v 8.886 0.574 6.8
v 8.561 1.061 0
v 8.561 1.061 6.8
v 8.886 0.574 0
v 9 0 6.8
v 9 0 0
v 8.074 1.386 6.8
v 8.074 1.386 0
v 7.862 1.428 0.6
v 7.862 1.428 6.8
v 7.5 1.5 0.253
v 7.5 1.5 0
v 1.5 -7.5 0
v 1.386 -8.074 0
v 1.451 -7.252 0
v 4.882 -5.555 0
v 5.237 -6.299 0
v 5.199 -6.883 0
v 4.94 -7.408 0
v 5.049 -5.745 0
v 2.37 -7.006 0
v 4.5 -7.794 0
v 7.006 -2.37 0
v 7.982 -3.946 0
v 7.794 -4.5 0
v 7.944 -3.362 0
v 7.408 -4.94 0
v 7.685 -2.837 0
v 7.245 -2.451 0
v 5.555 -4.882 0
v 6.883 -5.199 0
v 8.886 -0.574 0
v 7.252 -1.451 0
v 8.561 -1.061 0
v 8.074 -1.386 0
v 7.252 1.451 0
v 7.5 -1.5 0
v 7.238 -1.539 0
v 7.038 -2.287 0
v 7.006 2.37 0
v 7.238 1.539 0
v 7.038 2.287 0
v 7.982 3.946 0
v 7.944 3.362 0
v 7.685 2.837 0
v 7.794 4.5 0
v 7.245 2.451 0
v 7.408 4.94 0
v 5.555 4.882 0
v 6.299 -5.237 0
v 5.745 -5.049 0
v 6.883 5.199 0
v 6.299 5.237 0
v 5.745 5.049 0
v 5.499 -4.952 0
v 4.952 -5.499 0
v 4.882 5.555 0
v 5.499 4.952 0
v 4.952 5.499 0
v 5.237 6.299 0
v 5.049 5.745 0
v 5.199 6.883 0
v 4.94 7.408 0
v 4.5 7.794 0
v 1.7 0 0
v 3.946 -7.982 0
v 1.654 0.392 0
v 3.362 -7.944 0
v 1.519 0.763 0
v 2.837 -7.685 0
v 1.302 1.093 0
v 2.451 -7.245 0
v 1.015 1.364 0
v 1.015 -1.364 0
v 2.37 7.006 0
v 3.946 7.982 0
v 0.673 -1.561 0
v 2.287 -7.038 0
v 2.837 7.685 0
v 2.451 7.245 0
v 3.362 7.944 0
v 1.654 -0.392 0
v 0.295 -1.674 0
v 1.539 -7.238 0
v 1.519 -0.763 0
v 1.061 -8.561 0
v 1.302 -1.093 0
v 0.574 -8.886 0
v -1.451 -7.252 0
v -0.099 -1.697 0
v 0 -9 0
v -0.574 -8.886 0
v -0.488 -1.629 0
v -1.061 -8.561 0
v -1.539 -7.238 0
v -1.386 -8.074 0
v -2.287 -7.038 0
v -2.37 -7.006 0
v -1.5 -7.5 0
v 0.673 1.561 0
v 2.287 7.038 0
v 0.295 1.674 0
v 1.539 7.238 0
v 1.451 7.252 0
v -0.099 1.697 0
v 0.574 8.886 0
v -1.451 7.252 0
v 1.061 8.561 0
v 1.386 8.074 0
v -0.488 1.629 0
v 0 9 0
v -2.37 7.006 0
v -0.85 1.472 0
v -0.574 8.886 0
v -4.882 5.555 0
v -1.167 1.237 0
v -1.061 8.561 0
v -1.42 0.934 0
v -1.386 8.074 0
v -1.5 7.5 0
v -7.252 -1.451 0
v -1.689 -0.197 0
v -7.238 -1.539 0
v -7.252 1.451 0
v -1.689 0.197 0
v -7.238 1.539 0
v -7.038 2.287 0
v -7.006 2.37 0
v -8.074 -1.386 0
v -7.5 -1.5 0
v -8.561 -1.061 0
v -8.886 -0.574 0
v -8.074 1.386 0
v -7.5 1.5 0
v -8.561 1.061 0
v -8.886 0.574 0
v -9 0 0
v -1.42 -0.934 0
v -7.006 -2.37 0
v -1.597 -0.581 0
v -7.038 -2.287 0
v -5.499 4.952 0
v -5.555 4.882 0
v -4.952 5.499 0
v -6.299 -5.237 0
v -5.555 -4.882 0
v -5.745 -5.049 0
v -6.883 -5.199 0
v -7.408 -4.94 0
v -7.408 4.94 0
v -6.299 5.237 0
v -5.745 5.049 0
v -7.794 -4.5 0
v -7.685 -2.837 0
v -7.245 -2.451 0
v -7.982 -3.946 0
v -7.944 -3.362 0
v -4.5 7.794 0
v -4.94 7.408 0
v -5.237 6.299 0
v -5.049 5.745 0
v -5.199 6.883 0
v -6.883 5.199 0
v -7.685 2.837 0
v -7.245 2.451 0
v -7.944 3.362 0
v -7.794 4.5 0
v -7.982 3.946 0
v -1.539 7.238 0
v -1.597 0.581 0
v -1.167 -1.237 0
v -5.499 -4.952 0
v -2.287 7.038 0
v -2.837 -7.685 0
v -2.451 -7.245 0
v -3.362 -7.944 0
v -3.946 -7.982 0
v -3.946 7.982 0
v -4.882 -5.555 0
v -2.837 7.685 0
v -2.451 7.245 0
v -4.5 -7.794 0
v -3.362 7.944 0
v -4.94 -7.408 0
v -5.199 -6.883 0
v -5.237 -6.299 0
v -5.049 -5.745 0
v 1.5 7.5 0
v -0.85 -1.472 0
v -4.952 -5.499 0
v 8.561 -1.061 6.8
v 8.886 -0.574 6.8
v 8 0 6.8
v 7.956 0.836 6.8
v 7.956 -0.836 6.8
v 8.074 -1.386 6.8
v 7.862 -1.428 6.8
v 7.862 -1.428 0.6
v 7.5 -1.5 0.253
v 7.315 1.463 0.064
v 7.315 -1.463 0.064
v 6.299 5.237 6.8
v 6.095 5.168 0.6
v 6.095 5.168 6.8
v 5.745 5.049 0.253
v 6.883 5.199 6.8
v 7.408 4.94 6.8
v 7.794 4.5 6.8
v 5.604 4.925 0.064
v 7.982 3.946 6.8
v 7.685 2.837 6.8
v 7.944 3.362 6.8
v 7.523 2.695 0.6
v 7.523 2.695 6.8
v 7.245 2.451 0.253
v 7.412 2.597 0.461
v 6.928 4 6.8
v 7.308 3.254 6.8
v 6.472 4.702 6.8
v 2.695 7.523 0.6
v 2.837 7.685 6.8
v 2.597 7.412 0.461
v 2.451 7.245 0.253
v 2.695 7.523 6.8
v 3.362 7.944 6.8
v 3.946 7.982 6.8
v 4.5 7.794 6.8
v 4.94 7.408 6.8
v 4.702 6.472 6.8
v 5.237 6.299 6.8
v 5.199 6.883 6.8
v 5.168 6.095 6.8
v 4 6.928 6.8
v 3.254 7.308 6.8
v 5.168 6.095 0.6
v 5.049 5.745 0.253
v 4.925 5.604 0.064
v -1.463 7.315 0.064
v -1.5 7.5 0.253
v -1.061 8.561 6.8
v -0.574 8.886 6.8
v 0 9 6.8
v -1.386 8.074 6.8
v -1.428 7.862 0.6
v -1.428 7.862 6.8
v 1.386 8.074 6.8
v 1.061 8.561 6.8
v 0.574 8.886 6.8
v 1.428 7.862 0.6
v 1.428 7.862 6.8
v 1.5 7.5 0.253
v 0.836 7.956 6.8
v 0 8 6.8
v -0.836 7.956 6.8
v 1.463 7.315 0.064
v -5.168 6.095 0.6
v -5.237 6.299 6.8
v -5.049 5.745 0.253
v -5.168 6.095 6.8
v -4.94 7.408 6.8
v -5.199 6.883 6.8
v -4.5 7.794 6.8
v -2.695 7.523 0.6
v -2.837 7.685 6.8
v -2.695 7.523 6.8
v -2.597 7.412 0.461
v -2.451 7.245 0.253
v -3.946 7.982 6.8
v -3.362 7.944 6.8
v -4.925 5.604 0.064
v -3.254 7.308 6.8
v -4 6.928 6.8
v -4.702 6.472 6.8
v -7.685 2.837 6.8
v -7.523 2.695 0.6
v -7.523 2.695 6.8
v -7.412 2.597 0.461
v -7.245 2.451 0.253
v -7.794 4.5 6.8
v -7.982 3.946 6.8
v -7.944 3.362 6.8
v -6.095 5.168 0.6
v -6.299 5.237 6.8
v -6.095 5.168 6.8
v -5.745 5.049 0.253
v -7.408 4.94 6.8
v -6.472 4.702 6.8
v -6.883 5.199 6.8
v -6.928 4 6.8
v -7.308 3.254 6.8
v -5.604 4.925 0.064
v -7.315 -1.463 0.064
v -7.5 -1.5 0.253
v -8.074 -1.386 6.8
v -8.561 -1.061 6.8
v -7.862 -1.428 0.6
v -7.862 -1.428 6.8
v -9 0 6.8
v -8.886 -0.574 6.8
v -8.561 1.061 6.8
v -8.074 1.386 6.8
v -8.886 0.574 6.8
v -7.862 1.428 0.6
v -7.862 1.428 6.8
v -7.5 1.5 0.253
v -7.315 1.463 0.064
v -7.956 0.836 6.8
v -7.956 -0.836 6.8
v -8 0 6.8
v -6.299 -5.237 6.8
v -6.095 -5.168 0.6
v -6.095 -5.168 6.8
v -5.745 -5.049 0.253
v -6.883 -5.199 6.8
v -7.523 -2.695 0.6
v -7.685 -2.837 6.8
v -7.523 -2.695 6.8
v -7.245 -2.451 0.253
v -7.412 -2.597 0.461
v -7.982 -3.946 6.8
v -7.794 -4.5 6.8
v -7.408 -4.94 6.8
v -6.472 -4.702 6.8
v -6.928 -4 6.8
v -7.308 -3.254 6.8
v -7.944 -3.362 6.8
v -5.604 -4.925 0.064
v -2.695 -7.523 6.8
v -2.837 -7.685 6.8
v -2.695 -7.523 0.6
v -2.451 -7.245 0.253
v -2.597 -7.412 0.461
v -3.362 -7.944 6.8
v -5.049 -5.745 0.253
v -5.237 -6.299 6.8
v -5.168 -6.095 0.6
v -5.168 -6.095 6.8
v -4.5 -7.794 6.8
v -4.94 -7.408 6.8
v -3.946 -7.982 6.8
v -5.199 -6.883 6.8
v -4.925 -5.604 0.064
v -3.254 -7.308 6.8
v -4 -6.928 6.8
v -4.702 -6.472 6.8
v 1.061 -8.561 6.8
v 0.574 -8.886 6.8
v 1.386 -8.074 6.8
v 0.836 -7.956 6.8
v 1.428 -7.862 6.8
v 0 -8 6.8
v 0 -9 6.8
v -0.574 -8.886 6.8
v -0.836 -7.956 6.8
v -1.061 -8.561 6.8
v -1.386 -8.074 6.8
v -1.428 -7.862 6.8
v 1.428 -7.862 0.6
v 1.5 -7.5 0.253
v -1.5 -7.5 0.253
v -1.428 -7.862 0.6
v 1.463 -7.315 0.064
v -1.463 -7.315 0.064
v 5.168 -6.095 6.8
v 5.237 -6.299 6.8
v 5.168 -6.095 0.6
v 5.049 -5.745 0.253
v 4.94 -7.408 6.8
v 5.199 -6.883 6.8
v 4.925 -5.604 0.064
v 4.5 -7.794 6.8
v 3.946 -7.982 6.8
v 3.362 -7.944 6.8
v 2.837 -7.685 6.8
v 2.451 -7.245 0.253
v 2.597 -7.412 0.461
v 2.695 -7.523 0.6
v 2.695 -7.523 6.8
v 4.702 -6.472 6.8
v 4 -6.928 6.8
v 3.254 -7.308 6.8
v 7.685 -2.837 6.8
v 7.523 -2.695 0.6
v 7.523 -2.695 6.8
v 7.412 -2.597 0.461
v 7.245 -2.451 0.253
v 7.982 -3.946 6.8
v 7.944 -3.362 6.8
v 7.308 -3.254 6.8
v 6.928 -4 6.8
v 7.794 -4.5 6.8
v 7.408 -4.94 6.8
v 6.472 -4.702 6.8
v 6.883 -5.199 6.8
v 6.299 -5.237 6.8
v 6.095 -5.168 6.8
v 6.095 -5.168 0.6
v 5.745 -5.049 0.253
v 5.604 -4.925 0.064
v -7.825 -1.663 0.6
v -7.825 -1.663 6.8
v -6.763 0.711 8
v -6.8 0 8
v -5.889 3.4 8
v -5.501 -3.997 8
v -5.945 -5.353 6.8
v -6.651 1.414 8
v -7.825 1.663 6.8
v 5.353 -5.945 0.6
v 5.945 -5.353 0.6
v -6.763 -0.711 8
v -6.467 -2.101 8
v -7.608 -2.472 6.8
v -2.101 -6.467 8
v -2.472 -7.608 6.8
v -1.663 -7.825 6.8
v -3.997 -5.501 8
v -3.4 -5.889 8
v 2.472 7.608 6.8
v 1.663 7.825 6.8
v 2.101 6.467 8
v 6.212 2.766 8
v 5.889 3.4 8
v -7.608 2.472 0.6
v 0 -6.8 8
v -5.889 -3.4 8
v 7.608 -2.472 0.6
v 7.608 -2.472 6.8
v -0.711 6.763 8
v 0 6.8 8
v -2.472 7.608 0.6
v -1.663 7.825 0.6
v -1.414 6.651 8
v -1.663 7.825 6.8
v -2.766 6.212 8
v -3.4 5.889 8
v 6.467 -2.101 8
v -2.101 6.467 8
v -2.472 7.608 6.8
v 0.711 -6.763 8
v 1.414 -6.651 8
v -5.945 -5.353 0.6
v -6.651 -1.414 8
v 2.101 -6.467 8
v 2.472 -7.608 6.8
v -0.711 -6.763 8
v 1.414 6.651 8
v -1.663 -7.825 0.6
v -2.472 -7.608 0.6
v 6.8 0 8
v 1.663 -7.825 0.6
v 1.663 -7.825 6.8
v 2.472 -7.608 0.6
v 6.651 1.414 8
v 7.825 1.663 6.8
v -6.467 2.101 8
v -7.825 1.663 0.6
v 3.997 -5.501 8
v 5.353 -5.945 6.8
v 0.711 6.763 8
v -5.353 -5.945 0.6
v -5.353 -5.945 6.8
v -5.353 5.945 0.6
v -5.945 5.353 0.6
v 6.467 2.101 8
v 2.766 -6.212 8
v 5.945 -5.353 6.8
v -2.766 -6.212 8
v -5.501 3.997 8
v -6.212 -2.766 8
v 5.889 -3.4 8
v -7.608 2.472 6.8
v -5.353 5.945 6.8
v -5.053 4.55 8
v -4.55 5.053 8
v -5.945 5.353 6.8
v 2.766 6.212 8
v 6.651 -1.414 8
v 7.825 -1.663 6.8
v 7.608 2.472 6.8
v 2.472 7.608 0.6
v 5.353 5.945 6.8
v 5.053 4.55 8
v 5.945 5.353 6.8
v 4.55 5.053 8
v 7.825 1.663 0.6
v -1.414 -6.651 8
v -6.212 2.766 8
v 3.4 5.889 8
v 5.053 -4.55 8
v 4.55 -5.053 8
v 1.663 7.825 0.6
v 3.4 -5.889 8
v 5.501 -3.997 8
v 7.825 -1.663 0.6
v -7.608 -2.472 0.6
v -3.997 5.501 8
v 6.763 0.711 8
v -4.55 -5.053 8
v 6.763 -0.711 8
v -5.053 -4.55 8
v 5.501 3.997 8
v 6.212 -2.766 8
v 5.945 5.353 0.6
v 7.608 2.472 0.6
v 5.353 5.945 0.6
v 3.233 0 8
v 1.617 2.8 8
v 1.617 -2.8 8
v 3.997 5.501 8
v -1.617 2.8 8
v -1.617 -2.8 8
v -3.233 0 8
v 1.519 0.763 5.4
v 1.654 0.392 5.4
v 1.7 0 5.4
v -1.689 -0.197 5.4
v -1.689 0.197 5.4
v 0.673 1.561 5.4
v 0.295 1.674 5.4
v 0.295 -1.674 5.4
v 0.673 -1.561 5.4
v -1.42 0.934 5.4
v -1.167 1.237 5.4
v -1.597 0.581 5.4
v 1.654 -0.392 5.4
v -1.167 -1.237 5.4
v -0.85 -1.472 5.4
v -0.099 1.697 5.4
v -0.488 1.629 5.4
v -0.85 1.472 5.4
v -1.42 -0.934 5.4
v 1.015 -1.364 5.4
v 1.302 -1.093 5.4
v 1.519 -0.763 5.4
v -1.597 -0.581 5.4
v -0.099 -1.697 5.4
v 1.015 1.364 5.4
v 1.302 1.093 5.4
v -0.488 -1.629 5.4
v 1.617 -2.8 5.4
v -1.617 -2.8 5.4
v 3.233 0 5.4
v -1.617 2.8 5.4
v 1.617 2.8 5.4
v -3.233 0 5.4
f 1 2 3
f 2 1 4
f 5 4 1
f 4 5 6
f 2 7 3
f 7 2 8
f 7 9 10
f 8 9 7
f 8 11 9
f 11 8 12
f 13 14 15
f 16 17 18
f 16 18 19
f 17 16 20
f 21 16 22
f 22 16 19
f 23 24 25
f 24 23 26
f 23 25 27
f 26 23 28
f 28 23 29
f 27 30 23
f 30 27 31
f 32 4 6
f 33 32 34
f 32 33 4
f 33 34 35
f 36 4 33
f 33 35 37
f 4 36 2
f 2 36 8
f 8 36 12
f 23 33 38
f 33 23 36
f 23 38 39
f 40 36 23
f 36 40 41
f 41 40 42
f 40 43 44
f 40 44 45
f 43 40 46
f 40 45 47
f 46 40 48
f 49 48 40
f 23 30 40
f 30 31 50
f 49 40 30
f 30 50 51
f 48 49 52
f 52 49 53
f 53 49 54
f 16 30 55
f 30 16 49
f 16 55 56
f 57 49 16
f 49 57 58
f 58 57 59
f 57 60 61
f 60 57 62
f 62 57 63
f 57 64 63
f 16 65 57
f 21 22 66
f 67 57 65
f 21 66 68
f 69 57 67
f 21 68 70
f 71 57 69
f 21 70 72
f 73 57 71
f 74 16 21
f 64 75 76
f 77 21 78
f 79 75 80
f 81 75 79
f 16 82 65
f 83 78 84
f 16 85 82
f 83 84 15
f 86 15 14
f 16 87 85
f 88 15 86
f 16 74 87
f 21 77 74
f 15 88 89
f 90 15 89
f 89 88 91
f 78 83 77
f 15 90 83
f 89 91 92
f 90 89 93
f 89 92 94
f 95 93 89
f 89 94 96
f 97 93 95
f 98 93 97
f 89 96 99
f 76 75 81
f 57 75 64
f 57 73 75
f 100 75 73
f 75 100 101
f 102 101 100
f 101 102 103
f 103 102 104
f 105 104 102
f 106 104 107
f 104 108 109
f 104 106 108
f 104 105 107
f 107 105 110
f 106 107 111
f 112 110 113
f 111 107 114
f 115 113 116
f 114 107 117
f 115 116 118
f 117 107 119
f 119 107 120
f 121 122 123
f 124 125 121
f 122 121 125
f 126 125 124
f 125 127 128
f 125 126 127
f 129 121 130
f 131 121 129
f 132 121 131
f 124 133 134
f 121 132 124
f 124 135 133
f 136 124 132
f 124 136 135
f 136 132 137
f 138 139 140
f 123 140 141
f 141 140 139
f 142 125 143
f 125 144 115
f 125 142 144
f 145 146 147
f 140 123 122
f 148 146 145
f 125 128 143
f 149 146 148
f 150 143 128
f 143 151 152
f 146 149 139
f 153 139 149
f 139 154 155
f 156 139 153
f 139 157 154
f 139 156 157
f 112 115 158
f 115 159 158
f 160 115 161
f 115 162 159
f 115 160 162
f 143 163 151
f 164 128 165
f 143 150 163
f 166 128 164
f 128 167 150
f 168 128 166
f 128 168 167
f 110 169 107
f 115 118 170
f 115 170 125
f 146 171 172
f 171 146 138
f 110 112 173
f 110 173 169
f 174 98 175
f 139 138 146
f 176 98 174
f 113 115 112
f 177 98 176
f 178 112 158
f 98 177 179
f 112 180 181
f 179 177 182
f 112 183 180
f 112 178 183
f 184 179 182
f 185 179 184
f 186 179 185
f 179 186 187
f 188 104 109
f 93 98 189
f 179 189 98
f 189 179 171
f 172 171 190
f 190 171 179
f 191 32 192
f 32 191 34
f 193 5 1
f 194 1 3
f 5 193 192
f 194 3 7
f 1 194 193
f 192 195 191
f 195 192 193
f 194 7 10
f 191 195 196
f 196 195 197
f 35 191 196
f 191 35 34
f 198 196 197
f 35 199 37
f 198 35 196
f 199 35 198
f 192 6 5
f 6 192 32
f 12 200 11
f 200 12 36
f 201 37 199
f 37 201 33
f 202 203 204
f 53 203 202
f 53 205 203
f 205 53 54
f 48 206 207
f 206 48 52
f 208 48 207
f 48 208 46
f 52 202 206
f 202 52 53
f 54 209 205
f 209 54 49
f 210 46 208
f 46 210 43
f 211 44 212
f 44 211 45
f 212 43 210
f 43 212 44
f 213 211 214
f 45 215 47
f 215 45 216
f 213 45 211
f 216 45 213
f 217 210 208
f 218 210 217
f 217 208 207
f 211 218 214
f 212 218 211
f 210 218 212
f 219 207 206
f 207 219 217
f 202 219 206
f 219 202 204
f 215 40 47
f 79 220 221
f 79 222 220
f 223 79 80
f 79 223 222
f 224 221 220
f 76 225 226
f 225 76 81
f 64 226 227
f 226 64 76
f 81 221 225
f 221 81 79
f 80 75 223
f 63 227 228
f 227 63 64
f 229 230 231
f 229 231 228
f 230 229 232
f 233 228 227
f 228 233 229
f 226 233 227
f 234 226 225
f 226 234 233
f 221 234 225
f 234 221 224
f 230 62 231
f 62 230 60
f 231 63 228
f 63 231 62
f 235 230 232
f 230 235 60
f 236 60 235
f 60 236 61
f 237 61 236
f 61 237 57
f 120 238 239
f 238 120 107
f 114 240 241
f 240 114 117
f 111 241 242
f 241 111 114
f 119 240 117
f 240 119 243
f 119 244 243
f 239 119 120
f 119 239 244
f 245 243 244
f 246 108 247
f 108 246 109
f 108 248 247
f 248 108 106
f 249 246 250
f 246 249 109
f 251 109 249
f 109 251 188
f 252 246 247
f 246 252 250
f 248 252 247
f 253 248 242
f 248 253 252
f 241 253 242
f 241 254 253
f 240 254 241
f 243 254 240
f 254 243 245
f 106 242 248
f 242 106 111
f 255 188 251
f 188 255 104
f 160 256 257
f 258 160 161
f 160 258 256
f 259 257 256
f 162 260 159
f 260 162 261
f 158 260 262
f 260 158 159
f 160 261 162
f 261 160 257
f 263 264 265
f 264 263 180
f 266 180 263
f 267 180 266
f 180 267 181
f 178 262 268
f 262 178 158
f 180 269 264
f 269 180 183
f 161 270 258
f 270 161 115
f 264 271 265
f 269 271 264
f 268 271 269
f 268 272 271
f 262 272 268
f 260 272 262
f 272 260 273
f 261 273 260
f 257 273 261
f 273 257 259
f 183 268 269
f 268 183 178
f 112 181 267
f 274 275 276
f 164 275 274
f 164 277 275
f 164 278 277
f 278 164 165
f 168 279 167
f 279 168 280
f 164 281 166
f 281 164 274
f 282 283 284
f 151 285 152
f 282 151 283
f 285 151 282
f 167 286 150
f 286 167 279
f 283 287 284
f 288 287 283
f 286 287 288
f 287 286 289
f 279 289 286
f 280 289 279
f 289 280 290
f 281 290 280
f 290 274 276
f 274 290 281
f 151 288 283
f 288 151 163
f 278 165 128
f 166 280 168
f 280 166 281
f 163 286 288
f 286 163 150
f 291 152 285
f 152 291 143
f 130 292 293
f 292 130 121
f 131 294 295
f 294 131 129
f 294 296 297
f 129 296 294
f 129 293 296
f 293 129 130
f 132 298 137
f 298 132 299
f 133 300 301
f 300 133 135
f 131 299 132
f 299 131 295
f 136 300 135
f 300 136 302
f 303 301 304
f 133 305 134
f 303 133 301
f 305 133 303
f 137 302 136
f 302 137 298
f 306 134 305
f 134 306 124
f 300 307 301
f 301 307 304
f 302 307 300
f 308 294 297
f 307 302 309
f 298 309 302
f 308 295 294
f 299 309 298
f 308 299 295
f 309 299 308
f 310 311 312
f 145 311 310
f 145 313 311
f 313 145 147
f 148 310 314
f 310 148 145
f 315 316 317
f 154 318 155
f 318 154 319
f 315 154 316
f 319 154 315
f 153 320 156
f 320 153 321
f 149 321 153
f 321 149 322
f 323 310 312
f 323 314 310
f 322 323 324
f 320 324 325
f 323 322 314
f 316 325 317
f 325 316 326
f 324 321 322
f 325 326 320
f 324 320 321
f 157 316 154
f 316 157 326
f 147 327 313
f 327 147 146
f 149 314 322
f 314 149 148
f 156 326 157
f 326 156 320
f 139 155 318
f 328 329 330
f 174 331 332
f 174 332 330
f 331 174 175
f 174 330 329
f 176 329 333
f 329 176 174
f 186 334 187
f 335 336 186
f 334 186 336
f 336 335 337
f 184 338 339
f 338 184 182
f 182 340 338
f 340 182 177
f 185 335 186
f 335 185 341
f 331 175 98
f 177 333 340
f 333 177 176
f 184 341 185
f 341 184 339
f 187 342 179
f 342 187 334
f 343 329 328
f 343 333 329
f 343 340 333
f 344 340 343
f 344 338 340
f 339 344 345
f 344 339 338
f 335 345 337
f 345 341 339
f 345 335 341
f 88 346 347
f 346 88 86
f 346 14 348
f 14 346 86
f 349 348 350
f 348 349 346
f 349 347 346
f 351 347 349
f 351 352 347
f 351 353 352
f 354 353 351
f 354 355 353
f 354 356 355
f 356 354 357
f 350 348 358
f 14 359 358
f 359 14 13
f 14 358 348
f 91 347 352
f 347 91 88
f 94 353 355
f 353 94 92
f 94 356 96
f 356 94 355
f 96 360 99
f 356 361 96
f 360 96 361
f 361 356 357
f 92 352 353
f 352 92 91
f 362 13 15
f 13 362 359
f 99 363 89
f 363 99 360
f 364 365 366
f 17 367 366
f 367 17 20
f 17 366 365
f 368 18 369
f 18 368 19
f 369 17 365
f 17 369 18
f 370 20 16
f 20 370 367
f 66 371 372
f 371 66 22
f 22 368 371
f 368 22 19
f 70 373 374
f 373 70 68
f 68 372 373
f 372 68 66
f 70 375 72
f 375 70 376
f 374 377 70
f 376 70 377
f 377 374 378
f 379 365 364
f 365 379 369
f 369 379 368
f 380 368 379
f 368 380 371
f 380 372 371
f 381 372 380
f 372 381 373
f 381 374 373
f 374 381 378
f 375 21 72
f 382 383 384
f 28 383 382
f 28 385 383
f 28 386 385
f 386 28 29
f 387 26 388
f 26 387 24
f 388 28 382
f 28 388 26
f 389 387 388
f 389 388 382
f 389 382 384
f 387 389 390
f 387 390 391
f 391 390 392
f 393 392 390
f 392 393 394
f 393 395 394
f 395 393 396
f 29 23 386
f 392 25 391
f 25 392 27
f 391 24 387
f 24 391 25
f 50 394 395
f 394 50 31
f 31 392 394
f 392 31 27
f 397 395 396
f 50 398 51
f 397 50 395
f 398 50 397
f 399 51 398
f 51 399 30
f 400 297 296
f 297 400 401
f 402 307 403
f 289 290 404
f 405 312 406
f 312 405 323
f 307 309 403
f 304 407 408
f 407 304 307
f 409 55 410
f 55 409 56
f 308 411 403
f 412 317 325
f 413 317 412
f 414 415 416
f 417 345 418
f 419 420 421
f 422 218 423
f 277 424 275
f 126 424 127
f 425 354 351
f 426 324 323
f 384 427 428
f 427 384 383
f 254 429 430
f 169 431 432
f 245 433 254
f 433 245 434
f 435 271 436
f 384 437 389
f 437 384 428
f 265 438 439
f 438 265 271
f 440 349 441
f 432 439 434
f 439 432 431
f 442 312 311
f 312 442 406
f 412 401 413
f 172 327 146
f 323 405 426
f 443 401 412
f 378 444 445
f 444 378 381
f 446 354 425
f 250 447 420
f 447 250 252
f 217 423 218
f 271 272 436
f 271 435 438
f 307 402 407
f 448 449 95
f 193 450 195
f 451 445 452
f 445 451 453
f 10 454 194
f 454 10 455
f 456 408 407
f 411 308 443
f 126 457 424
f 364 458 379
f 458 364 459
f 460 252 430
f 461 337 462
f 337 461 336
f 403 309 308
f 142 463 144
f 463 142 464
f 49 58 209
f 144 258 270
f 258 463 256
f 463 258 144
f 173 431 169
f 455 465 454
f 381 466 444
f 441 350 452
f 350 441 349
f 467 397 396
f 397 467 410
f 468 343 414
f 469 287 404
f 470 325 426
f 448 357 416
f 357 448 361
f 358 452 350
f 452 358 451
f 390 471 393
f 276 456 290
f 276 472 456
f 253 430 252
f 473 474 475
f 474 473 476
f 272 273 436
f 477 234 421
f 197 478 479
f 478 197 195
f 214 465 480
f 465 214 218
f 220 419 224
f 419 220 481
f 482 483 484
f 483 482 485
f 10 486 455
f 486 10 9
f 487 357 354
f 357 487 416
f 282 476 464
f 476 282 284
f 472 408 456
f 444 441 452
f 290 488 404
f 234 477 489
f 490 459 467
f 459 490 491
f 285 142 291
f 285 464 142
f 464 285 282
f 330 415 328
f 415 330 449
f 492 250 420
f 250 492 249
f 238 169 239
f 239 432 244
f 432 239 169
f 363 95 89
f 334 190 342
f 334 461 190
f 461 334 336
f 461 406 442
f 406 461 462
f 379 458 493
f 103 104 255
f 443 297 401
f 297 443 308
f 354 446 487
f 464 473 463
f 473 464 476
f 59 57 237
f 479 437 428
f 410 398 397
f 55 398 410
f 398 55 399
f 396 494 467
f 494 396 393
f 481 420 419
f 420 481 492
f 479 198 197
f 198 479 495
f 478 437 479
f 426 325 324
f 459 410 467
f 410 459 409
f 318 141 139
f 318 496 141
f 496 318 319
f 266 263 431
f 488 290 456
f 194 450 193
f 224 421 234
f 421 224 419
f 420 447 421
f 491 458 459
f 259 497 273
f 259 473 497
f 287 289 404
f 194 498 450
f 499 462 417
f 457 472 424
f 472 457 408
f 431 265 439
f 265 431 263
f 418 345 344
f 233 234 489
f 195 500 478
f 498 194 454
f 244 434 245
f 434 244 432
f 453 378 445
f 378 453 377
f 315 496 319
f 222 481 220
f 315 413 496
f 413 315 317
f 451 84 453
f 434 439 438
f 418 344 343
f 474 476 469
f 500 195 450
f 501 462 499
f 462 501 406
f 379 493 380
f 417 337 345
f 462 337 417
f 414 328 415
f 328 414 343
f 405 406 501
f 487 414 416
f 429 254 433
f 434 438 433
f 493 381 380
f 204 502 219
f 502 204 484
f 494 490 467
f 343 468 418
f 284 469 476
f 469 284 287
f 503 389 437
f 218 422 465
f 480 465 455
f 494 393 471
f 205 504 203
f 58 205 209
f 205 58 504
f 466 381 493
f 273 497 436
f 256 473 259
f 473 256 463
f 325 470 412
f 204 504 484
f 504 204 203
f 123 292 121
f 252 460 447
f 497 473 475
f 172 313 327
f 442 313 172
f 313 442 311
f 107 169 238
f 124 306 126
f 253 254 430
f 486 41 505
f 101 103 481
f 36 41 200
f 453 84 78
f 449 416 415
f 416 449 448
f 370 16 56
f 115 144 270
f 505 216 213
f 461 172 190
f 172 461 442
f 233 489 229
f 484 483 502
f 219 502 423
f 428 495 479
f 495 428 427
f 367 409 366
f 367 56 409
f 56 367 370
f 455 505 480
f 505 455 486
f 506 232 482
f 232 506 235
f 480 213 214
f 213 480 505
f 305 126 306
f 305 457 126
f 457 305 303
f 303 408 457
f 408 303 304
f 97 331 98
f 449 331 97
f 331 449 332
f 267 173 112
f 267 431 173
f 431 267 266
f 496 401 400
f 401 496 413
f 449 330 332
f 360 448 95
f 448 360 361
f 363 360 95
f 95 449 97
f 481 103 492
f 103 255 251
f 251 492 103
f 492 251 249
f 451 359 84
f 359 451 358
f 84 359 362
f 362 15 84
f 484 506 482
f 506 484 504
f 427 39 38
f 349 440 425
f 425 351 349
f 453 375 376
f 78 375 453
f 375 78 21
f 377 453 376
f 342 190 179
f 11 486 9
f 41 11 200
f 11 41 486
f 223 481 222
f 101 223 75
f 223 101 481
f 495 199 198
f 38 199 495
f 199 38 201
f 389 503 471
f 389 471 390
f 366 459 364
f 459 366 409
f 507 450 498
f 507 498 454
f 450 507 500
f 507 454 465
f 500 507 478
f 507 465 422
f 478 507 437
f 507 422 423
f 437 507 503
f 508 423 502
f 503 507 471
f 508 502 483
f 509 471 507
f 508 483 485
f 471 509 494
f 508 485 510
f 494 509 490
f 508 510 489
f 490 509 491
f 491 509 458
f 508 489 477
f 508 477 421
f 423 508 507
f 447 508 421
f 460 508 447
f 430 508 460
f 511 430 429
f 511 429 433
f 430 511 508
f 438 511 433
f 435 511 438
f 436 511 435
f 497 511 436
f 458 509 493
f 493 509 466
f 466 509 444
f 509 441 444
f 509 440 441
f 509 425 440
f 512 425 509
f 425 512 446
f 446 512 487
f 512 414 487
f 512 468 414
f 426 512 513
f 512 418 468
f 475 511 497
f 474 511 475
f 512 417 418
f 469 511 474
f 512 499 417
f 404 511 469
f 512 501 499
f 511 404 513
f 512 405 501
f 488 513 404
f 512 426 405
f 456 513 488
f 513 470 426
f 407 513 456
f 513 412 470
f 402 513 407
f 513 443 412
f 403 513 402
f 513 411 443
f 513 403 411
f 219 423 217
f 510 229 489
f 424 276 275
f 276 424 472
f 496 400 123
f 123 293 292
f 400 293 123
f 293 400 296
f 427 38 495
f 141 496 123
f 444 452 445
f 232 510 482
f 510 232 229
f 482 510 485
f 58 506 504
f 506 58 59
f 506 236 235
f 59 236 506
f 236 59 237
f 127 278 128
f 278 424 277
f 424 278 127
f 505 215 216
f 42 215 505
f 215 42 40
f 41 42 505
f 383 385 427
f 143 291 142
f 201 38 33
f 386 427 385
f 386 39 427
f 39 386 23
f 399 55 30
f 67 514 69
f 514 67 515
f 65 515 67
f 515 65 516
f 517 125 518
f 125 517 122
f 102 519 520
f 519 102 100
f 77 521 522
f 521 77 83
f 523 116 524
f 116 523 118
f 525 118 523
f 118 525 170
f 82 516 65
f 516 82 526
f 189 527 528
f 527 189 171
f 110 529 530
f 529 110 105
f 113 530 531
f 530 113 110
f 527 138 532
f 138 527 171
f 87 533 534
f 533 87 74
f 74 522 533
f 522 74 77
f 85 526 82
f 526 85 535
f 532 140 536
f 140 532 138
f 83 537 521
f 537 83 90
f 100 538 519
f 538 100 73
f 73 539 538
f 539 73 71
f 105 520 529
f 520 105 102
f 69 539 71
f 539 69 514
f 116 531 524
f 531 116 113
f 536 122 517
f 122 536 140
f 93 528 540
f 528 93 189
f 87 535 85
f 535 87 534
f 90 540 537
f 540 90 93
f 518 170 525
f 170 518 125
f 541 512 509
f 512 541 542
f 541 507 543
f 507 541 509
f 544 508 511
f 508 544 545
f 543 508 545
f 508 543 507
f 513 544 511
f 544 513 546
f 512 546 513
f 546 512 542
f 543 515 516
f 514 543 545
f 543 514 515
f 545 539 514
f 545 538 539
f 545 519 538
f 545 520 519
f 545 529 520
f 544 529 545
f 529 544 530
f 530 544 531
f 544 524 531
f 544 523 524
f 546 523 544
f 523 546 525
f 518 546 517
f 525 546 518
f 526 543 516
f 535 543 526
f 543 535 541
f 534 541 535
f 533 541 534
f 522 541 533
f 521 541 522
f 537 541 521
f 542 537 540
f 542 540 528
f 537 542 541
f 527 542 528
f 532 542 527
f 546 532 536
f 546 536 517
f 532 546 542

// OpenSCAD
// file: ../stem_core.scad
// =====================================================================
//  stem_core.scad — shared geometry helpers for every STEM_KIT part.
// =====================================================================
include <../PARAMETERS/config.scad>
// =====================================================================

// ---------- rounded / chamfered prisms --------------------------------

// Rounded rectangle (2D), centred.
module rrect(size, r) {
    rr = min(r, min(size[0], size[1]) / 2 - 0.01);
    offset(r = rr) square([size[0] - 2 * rr, size[1] - 2 * rr], center = true);
}

// Box with rounded vertical edges, chamfered bottom edge (elephant-foot
// relief) and rounded-ish (chamfered) top edge. Sits on z = 0, centred XY.
module rbox(size, r = 2, top = edge_r, bottom = chamfer) {
    h = size[2];
    hull() {
        linear_extrude(0.01) rrect([size[0] - 2 * bottom, size[1] - 2 * bottom], max(r - bottom, 0.1));
        translate([0, 0, bottom]) linear_extrude(h - bottom - top) rrect([size[0], size[1]], r);
        translate([0, 0, h - 0.01]) linear_extrude(0.01) rrect([size[0] - 2 * top, size[1] - 2 * top], max(r - top, 0.1));
    }
}

// Cylinder with chamfered/rounded top and bottom edges (safe hubs, knobs).
module rcyl(d, h, top = edge_r, bottom = chamfer) {
    rotate_extrude() polygon([
        [0, 0], [d / 2 - bottom, 0], [d / 2, bottom],
        [d / 2, h - top], [d / 2 - top, h], [0, h]
    ]);
}

// Stadium (slot / rounded bar) 2D between two points on the X axis.
module stadium2d(len, w) {
    hull() { circle(d = w); translate([len, 0]) circle(d = w); }
}

// ---------- holes ------------------------------------------------------

// Vertical through hole with small top/bottom chamfers.
module vhole(d = grid_hole_d, h = 50, ch = 0.4) {
    translate([0, 0, -h / 2]) cylinder(d = d, h = h);
}

// Horizontal hole along +Y, printable without supports (teardrop tip up).
module teardrop_y(d, len, center = true) {
    translate([0, center ? -len / 2 : 0, 0]) rotate([-90, 0, 0])
        linear_extrude(len) teardrop2d(d);
}
module teardrop_x(d, len, center = true) {
    translate([center ? -len / 2 : 0, 0, 0]) rotate([0, 90, 0]) rotate([0, 0, -90])
        linear_extrude(len) teardrop2d(d);
}
// 2D teardrop: circle + 45° roof pointing "up" in the final part (+Z).
// After rotate([-90,0,0]) local +Y becomes -Z, so the roof points to -Y here.
module teardrop2d(d) {
    r = d / 2;
    union() {
        circle(d = d);
        polygon([[-r * sqrt(2) / 2, -r * sqrt(2) / 2], [0, -r * sqrt(2)], [r * sqrt(2) / 2, -r * sqrt(2) / 2]]);
    }
}

// Hex nut pocket (flat sides parallel to X), opening at z = 0 going +Z.
module nut_pocket(depth = nut_pocket_depth, af = nut_pocket_af) {
    cylinder(d = af / cos(30), h = depth, $fn = 6);
}

// Side-entry nut slot: nut plane is XY, slot opens toward +dir (X).
// Centred on the screw axis (Z), slot height nut_slot_t, runs out `len`.
module nut_slot_x(len = 10, af = nut_pocket_af, t = nut_slot_t) {
    translate([0, 0, -t / 2]) hull() {
        cylinder(d = af / cos(30), h = t, $fn = 6);
        translate([len, 0, 0]) cylinder(d = af / cos(30), h = t, $fn = 6);
    }
}

// Counterbored clearance hole from top surface at height `top` downward.
module cbore(top, depth, d = counterbore_d) {
    translate([0, 0, top - depth]) cylinder(d = d, h = depth + 20);
    translate([0, 0, -20]) cylinder(d = grid_hole_d, h = top + 40);
}

// Grid of vertical holes: nx x ny, pitch grid_pitch, first hole centred
// at `origin` (XY). Used by every plate.
module grid_holes(nx, ny, origin = [0, 0], h = 100, d = grid_hole_d) {
    for (i = [0 : nx - 1], j = [0 : ny - 1])
        translate([origin[0] + i * grid_pitch, origin[1] + j * grid_pitch, 0]) vhole(d, h);
}

// Slot (for adjustable mounting) along X, length = travel.
module slot_x(travel, d = grid_hole_d, h = 100) {
    translate([-travel / 2, 0, -h / 2]) linear_extrude(h) stadium2d(travel, d);
}

// ---------- shaft bores ------------------------------------------------

// 2D bore profile: round, or D if shaft_flat > 0.
module bore2d(d) {
    if (shaft_flat > 0)
        intersection() { circle(d = d); translate([-d, -d / 2]) square([2 * d, d - shaft_flat + (d - shaft_diameter) / 2]); }
    else circle(d = d);
}

// Standard HUB: cylinder hub_d x hub_h standing on z = z0, with bore,
// radial M3 set screw at mid height and a captive-nut slot from the top.
// Call inside difference() for the cut-outs: hub_body()/hub_cuts().
module hub_body(z0, d = hub_d, h = hub_h) {
    translate([0, 0, z0]) rcyl(d, h, top = 0.8, bottom = 0);
}
module hub_cuts(z0, total_h, d = hub_d, h = hub_h, bore = shaft_fixed_bore, set_screw = true, screw_angle = 0) {
    // bore through everything
    translate([0, 0, -1]) linear_extrude(total_h + 2) bore2d(bore);
    // entry chamfer on bore
    translate([0, 0, total_h - 0.6]) cylinder(d1 = bore, d2 = bore + 1.2, h = 0.61);
    translate([0, 0, -0.01]) cylinder(d1 = bore + 1.2, d2 = bore, h = 0.6);
    if (set_screw) rotate([0, 0, screw_angle]) {
        zs = z0 + h / 2;
        // radial screw hole (teardrop, prints without support)
        translate([0, 0, zs]) teardrop_x(screw_clear_d, d, center = false);
        // captive nut slot, entered from the hub top face
        nr = bore / 2 + (d / 2 - bore / 2) / 2;       // radial position of nut
        translate([nr - nut_slot_t / 2, -nut_pocket_af / 2, zs - nut_pocket_af / cos(30) / 2 - 0.1])
            cube([nut_slot_t, nut_pocket_af, total_h + 10]);   // open to the hub top face
    }
}

// ---------- labels -----------------------------------------------------

// Engrave text into a top surface at height z (depth 0.6 = 3 layers).
module engrave(txt, size = 5, z = 0, depth = 0.6, halign = "center") {
    translate([0, 0, z - depth]) linear_extrude(depth + 1)
        text(txt, size = size, font = "Liberation Sans:style=Bold", halign = halign, valign = "center");
}

// ---------- misc -------------------------------------------------------

function grid_snap(v) = ceil(v / grid_pitch) * grid_pitch;
// file: ../../PARAMETERS/config.scad
// =====================================================================
//  STEM_KIT — CENTRAL PARAMETER FILE  ("ForgeGrid" mechanical standard)
// ---------------------------------------------------------------------
//  Every part in the library includes this file. Change a value here,
//  run `python3 tools/build.py`, and the whole library regenerates.
//  All dimensions in millimetres.
// =====================================================================

// ---------------------------------------------------------------------
// 1. PRINTER / PROCESS
// ---------------------------------------------------------------------
nozzle          = 0.4;
layer_height    = 0.2;
tolerance       = 0.2;    // sliding clearance per side (tune with STEM_TOLERANCE_TEST)
press_allow     = 0.05;   // extra for press fits (bores that should grip)
min_wall        = 1.6;    // never go below this
wall_thickness  = 2.4;    // preferred wall (6 perimeters @ 0.4)
edge_r          = 1.0;    // rounding of exposed edges (child safety)
chamfer         = 0.6;    // bottom-edge chamfer (elephant-foot relief)

$fa = 6;                  // facet angle
$fs = 0.4;                // facet size

// ---------------------------------------------------------------------
// 2. GRID  (the heart of the ecosystem)
// ---------------------------------------------------------------------
//  Holes sit on a 10 mm lattice, 5 mm in from every plate edge, so
//  plates placed side by side keep one continuous lattice.
grid_pitch            = 10;
plate_size            = 100;   // universal base plate (square)
plate_thickness       = 6;     // base plates, rails, chassis
foot_thickness        = 4;     // flange / foot of every mount
//  => standard joint: 4 mm foot + 6 mm plate = M3 x 10 screw, nut in
//     the hex pocket under the plate. One screw length does 90 % of joints.

// ---------------------------------------------------------------------
// 3. FASTENERS (M3 everywhere: one screwdriver, one nut)
// ---------------------------------------------------------------------
screw_size            = 3;
screw_clear_d         = 3.4;   // clearance hole (also the grid hole)
grid_hole_d           = screw_clear_d;
screw_tap_d           = 2.6;   // hole a screw self-taps into
screw_head_d          = 5.7;   // ISO 7380 BUTTON head = kit standard (low, rounded, child-safe)
screw_head_h          = 1.65;
counterbore_d         = 6.4;
nut_af                = 5.5;   // M3 nut across flats
nut_thick             = 2.4;
nut_pocket_af         = nut_af + 0.35;
nut_pocket_depth      = 3.0;   // pocket under plates (nut sits flush)
nut_slot_t            = nut_thick + 0.4;  // side-entry slot thickness
set_screw_len         = 6;     // M3 x 6 grub screw for hubs

// ---------------------------------------------------------------------
// 4. SHAFTS
// ---------------------------------------------------------------------
//  Default: 3 mm steel rod (silver steel / stainless). Printed shafts
//  are provided for light-duty use. Alternative systems: set
//  shaft_diameter = 4 or 5 and rebuild.
shaft_diameter        = 3;
shaft_flat            = 0;     // >0 : D-shaft, flat depth (e.g. 0.5)
shaft_fixed_bore      = shaft_diameter + 0.15;  // hub bore (set-screw locked)
shaft_free_bore       = shaft_diameter + 0.4;   // free-spinning bore / bushing
shaft_lengths         = [40, 60, 80, 100, 120];

//  Horizontal shafts: all pillow blocks, motor mounts and axle mounts
//  put their axis at this height above the surface they are bolted to,
//  so any two of them on the grid are automatically coaxial/parallel.
axis_height           = 17;
axis_height_high      = 37;    // = axis_height + 2 pitches (pulleys, big wheels)

// ---------------------------------------------------------------------
// 5. BEARINGS
// ---------------------------------------------------------------------
bearing_size          = [5, 16, 5];   // 625 : bore, OD, width (default housing)
bearing_small         = [3, 10, 4];   // 623 : fits 3 mm shafts via adapter ring
bearing_pocket_d      = bearing_size[1] + 0.15;

// ---------------------------------------------------------------------
// 6. GEARS
// ---------------------------------------------------------------------
//  Module 2 + tooth counts that are multiples of 10  =>  centre distance
//  = (z1+z2) mm is ALWAYS a multiple of 10  =>  ANY two gears mesh when
//  their shafts sit in grid holes. (3-4-5 diagonals also work: 50 mm.)
gear_module           = 2;
gear_pressure_angle   = 20;
gear_width            = 6;
gear_backlash         = 0.30;  // total circular backlash per mesh
gear_clearance_k      = 0.25;  // root clearance = k * module
gear_teeth_set        = [10, 20, 30, 40];
//  Gearbox frame: two frame plates, outer faces 60 mm apart (on grid),
//  48 mm gap = three gear levels (A, M, B).
frame_gap             = 48;
hub_d                 = 14;
hub_h                 = 7;

// ---------------------------------------------------------------------
// 7. WHEELS / PULLEYS
// ---------------------------------------------------------------------
wheel_diameter        = 60;
wheel_width           = 10;
axle_diameter         = shaft_diameter;
oring_cs              = 3.0;    // O-ring cross-section used as tyre / belt
belt_cs               = 2.5;    // O-ring / round-belt cord for pulleys
pulley_sizes          = [20, 40, 60];  // effective (belt-line) diameters

// ---------------------------------------------------------------------
// 8. MOTORS (130-size toy / solar motor is the default)
// ---------------------------------------------------------------------
motor_size            = [20.2, 15.2, 25.2]; // body dia, across-flats, length
motor_d               = motor_size[0];
motor_flat            = motor_size[1];
motor_len             = motor_size[2];
motor_boss_d          = 6.2;
motor_boss_h          = 1.6;
motor_shaft_d         = 2.0;
motor_shaft_len       = 8.5;   // beyond boss
motor_shaft_bore      = 1.9;   // press fit onto 2 mm motor shaft

// ---------------------------------------------------------------------
// 9. SOLAR PANEL (bought, not printed) — frame is parametric
// ---------------------------------------------------------------------
solar_panel_size      = [110, 69, 3.0];  // 5 V 1 W epoxy panel (common)
solar_panel_clear     = 0.6;

// ---------------------------------------------------------------------
// 10. ELECTRONICS
// ---------------------------------------------------------------------
mounting_hole_spacing = grid_pitch;   // everything bolts to the grid
electronics_slot_w    = screw_clear_d;
led_hole_d            = 5.1;
buzzer_hole_d         = 12.2;

// ---------------------------------------------------------------------
// 11. SAFETY LIMITS (checked by tools/qc.py)
// ---------------------------------------------------------------------
max_part_voltage      = 12;    // nothing in this kit uses more
min_rim_thickness     = 2.0;   // blades/links: no edge thinner than this
finger_gap_max        = 6;     // guard openings smaller than a child's finger
// main file
// =====================================================================
//  PART: thumb nut — COMMON/connectors
//  Knurled knob with a pressed-in M3 nut: children tighten joints by
//  hand, no spanner needed. Also the friction lock for tilting mounts.
//  Print: flat, nut pocket up. Press an M3 nut in (vice or tap lightly).
// =====================================================================
include <../../PARAMETERS/config.scad>
use <../stem_core.scad>

thumb_nut();

module thumb_nut(d = 18, h = 8) {
    difference() {
        union() {
            rcyl(d - 2, h, top = 1.2, bottom = chamfer);
            for (a = [0 : 30 : 359]) rotate(a) translate([d / 2 - 1.5, 0, 0])
                cylinder(d = 3, h = h - 1.2, $fn = 16);
        }
        vhole(grid_hole_d, 40);
        // tight pocket: nut is pressed in and can't spin
        translate([0, 0, h - nut_thick - 0.2]) cylinder(d = (nut_af + 0.1) / cos(30), h = 10, $fn = 6);
    }
}
